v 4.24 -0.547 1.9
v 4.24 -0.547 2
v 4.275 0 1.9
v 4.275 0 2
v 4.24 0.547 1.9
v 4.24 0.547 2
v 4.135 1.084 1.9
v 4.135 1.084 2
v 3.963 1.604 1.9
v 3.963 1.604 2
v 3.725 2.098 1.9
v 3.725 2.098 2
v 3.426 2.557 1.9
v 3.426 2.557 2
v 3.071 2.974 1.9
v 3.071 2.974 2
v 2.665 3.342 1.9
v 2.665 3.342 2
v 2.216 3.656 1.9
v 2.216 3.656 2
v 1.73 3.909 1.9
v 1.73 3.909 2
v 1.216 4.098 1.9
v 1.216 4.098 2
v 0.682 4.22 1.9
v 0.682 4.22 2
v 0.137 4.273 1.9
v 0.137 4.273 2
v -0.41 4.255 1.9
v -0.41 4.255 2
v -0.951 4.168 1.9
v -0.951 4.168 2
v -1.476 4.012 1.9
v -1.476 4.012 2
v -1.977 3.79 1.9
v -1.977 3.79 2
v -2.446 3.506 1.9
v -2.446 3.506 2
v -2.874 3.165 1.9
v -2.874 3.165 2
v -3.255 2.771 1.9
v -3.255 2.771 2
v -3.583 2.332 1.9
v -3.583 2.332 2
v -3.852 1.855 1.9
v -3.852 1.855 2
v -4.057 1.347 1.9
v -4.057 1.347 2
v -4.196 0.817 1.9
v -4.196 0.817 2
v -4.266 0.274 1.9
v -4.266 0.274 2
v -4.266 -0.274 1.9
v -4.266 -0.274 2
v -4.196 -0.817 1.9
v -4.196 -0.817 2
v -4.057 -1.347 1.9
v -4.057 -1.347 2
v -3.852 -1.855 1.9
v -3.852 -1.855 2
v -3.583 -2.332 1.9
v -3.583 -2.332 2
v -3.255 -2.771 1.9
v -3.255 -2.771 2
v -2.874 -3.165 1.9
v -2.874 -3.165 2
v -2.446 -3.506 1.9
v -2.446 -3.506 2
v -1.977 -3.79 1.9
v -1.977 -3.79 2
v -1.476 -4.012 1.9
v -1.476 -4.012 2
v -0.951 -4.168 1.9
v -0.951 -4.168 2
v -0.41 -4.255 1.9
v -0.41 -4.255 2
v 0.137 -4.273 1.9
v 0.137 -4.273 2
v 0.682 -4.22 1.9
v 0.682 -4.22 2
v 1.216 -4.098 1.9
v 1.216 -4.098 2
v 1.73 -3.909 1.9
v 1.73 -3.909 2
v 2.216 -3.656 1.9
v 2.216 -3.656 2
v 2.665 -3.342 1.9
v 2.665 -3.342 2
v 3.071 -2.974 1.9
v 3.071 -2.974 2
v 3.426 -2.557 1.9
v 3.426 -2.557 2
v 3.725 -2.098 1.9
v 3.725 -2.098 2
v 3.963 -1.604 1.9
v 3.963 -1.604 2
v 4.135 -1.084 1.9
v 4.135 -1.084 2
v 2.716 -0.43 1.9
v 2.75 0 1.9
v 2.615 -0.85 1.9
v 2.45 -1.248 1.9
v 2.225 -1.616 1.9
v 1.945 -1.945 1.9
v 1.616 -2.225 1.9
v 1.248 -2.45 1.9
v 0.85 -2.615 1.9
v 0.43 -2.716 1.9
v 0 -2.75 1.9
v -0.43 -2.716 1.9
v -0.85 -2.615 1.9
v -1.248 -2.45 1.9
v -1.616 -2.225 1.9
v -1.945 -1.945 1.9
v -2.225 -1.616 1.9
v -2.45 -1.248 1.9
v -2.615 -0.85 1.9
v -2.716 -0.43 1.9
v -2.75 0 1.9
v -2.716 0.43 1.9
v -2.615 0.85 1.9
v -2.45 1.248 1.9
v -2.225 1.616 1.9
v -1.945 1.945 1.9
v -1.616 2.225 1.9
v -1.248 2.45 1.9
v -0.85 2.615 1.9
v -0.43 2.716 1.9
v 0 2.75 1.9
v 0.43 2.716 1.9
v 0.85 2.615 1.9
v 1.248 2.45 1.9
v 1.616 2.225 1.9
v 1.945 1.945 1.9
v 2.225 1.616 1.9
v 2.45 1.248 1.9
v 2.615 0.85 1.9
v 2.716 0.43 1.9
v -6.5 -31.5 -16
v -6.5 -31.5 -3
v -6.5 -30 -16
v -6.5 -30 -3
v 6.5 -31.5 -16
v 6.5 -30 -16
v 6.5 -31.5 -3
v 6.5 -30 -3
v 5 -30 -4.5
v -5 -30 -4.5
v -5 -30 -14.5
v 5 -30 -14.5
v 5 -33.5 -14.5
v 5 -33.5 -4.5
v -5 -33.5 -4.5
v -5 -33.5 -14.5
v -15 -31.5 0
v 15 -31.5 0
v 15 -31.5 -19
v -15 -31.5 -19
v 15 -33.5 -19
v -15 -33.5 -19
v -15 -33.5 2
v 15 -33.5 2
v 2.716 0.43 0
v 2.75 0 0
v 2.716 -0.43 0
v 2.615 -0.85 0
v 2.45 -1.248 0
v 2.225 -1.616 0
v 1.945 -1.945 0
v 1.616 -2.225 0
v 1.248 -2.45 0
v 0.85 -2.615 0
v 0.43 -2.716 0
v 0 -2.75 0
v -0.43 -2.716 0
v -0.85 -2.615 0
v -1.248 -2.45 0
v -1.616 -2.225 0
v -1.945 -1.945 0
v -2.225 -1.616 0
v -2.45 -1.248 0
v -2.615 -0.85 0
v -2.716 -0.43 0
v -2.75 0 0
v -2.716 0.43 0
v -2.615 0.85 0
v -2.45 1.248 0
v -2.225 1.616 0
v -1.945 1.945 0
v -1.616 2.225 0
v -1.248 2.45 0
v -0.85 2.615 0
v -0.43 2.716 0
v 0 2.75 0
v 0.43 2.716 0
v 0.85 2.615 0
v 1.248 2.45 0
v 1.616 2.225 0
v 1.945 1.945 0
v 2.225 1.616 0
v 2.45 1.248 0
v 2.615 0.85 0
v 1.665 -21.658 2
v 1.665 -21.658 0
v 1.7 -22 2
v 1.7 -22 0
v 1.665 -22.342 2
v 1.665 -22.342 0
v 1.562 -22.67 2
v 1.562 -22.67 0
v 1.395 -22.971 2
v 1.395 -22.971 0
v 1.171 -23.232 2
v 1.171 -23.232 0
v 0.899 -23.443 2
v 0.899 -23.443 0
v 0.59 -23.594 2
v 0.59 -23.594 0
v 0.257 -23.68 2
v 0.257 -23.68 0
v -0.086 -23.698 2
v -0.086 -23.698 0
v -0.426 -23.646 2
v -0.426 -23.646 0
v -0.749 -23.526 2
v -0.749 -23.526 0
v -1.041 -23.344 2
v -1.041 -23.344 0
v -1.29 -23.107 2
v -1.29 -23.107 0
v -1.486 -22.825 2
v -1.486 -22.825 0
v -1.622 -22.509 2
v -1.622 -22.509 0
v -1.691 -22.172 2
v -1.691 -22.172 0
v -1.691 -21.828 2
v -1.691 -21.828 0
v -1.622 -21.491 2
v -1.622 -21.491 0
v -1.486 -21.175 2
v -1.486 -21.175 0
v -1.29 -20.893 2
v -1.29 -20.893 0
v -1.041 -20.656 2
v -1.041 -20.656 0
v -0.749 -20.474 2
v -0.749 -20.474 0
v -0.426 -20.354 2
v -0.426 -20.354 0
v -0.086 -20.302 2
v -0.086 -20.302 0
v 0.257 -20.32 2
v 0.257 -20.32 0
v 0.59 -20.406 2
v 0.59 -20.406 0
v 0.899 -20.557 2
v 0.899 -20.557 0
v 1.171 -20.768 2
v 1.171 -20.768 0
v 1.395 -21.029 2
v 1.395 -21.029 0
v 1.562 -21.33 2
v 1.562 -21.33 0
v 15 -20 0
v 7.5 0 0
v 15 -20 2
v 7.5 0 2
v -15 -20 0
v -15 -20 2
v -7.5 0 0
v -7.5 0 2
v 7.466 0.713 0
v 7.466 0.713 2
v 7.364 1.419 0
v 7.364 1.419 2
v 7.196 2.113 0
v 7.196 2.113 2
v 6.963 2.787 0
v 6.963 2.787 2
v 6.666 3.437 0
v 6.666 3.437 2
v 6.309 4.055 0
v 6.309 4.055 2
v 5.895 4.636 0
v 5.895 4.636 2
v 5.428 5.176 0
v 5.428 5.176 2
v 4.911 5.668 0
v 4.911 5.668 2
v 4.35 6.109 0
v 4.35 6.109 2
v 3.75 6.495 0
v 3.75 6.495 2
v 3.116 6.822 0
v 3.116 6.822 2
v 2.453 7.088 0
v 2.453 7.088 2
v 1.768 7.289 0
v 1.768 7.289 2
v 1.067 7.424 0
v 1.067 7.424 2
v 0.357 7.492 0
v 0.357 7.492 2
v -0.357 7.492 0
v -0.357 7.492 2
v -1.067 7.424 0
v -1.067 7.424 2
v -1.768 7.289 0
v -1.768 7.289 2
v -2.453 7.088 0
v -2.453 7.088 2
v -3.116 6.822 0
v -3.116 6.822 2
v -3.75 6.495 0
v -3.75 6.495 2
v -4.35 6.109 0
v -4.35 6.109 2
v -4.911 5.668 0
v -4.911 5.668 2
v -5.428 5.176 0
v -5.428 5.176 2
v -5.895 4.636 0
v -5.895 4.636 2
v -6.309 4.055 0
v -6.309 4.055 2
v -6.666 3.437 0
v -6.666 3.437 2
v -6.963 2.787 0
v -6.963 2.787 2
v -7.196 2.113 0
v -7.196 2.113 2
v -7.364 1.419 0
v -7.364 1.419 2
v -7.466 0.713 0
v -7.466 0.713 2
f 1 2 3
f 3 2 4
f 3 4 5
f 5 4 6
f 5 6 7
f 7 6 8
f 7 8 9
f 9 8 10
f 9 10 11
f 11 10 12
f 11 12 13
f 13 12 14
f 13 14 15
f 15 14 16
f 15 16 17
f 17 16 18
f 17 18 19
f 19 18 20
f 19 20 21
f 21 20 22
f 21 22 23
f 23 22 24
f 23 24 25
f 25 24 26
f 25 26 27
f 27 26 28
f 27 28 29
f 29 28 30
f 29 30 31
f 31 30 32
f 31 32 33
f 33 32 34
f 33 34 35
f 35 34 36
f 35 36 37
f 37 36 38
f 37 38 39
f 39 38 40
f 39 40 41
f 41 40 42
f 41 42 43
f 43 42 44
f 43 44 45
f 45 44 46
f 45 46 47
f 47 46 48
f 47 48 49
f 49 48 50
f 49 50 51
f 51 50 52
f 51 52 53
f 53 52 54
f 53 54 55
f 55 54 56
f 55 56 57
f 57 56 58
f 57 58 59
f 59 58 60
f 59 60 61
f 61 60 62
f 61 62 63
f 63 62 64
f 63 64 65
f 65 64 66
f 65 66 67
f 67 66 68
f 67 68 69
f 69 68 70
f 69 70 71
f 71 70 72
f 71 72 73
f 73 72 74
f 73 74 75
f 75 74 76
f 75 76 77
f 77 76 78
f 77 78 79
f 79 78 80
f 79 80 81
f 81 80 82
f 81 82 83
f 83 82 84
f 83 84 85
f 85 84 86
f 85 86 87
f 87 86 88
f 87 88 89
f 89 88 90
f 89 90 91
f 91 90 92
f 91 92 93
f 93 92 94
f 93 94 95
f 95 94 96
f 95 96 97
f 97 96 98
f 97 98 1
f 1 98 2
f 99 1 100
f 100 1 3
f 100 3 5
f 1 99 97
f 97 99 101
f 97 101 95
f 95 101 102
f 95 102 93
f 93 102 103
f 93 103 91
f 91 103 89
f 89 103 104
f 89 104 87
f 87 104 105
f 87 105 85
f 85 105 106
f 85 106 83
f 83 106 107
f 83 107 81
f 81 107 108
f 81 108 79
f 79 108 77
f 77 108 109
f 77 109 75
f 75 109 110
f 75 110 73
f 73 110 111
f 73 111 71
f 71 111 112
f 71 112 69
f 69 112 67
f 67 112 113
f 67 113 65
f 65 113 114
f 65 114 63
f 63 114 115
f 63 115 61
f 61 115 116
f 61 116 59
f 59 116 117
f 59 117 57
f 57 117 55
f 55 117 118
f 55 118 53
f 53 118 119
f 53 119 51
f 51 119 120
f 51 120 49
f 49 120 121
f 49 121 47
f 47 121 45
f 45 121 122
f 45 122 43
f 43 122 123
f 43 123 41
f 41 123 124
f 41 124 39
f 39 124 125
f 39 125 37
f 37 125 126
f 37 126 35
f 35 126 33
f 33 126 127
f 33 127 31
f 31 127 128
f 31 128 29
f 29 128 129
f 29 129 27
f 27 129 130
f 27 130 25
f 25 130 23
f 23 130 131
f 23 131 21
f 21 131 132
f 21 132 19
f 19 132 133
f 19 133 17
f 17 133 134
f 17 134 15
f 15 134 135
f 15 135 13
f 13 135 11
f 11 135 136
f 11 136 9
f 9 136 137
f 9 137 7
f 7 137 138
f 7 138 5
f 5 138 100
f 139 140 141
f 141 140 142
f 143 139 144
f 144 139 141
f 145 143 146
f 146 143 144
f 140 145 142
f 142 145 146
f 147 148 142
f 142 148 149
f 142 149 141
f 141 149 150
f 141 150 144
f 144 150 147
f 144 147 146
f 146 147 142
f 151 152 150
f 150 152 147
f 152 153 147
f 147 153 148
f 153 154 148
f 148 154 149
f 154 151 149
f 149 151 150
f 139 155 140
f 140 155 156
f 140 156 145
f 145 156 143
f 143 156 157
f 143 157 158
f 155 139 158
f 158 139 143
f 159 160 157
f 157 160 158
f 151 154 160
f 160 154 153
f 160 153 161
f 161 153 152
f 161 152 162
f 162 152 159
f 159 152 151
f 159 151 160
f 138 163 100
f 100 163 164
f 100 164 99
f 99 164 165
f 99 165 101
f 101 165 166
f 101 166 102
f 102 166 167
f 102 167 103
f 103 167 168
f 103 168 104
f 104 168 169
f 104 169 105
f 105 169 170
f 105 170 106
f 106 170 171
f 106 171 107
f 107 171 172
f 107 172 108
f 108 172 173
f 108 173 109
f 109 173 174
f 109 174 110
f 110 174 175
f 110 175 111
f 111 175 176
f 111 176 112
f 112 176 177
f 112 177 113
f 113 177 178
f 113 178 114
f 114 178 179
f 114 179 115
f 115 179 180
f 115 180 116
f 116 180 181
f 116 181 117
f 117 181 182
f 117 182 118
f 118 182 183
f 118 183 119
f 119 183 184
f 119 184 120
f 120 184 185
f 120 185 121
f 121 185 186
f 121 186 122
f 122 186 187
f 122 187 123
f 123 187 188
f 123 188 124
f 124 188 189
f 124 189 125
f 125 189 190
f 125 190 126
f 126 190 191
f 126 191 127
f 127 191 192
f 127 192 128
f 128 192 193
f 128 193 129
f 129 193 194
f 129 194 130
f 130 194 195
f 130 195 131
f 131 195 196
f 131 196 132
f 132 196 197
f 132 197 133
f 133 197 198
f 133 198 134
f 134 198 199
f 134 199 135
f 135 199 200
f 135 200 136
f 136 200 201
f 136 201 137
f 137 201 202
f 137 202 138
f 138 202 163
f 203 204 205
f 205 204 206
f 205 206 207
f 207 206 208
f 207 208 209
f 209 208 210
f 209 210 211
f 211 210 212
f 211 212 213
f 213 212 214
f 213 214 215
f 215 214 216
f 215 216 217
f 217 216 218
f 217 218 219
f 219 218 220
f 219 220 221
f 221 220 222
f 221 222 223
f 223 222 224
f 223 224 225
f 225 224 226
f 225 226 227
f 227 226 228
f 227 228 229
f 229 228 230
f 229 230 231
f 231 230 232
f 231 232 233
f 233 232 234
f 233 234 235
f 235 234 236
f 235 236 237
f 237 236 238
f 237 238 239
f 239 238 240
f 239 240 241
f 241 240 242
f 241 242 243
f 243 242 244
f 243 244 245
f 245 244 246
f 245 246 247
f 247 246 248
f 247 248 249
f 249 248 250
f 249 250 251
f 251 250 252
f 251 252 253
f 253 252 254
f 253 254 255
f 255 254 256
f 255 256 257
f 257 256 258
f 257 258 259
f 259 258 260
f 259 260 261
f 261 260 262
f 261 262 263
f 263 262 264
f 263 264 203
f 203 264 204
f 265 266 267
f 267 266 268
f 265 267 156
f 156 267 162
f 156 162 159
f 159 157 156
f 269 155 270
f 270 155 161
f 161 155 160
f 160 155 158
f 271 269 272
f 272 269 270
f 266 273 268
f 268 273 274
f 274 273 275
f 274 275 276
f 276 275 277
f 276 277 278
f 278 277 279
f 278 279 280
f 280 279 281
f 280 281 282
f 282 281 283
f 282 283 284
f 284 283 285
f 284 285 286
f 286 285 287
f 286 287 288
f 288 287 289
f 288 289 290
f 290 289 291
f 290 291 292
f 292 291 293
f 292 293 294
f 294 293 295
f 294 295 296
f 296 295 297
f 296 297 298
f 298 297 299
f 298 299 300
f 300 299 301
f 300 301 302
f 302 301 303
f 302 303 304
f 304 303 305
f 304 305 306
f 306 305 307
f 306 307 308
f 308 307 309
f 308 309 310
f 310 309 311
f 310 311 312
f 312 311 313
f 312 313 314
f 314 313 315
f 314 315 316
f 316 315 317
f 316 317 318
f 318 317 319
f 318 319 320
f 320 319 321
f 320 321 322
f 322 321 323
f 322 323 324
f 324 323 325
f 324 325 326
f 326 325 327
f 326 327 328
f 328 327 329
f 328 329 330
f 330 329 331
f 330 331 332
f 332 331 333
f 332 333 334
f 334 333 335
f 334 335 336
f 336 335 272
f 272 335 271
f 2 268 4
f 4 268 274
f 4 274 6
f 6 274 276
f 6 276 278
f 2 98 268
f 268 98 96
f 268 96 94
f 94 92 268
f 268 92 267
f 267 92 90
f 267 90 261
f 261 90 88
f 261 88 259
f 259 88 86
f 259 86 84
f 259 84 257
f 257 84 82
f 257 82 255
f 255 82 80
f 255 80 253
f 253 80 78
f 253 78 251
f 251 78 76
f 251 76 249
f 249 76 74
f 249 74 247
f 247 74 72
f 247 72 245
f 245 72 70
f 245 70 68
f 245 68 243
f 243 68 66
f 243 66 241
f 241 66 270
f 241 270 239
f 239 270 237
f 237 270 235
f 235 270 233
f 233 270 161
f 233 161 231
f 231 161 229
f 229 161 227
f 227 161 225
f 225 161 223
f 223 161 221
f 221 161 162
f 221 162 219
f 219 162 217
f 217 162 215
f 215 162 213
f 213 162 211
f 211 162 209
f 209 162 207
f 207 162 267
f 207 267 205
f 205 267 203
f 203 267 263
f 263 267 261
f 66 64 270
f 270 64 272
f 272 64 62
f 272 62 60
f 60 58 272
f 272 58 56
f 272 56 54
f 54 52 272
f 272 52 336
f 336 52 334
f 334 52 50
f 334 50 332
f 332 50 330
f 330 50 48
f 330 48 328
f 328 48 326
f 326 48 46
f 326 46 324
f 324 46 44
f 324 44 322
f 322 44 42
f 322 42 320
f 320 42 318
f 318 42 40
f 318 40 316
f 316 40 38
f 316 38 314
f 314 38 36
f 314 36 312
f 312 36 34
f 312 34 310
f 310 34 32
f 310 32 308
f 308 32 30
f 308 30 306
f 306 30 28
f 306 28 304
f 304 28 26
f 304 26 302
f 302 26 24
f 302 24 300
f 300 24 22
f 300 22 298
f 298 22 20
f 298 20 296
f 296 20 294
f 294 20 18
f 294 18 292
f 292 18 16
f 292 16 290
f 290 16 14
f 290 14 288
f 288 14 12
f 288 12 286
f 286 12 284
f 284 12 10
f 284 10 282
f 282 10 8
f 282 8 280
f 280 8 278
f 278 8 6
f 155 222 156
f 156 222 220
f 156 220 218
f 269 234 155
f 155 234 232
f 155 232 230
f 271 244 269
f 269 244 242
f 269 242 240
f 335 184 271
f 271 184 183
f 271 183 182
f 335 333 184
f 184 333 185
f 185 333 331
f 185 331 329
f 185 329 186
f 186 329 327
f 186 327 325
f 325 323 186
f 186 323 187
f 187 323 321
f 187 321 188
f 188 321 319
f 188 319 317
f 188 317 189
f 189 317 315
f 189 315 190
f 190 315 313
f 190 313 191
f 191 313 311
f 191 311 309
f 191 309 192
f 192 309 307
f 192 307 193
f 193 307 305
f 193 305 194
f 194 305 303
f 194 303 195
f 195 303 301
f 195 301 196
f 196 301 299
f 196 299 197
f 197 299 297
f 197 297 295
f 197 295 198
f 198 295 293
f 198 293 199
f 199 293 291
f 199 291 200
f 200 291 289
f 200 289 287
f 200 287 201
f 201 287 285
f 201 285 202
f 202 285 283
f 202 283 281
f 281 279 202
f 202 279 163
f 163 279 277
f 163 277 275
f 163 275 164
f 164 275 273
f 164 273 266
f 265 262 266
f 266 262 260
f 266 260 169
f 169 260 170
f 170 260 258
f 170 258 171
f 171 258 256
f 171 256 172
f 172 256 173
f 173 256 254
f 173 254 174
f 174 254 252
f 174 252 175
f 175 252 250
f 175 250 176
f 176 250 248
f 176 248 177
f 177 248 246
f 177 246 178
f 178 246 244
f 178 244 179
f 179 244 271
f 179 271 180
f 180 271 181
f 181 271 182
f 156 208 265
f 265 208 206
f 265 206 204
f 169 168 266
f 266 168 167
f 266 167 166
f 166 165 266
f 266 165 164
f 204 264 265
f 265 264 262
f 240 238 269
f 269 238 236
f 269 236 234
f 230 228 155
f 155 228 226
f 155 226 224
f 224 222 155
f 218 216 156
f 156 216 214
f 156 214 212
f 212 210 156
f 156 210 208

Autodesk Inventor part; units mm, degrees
ref_plane "YZ Plane" through (0, 0, 0) normal (1, 0, 0) x (0, 1, 0)
ref_plane "XZ Plane" through (0, 0, 0) normal (0, 1, 0) x (-1, 0, 0)
ref_plane "XY Plane" through (0, 0, 0) normal (0, 0, 1) x (1, 0, 0)
sketch "Sketch2" plane through (-15, -30, 0) normal (0, 0, 1) x (1, 0, 0)
  arc A0 (22.5, 30) -> (7.5, 30) centre (15, 30) ccw
  line L0 (7.5, 30) -> (0, 10)
  line L1 (30, 10) -> (22.5, 30)
  line L2 (30, 0) -> (30, 10)
  line L3 (0, 10) -> (0, 0)
  line L4 (0, 0) -> (30, 0)
  circle A1 centre (15, 30) radius 2.75
  circle A2 centre (15, 8) radius 1.7
  line L5 (15, 30) -> (15, 8) construction
  line L6 (7.5, 30) -> (15, 30) construction
  dimension "d15" = 30
  dimension "d16" = 10
  dimension "d17" = 15
  dimension "d18" = 5.5
  dimension "d19" = 30
  dimension "d20" = 8
  dimension "d21" = 15
  dimension "d22" = 3.4
extrude "Extrusion1" add sketch "Sketch2" along normal blind 2
sketch "Sketch3" plane through (-15, -30, 0) normal (0, -1, 0) x (1, 0, 0)
  line L0 (0, 0) -> (30, 0) projected
  line L1 (30, 0) -> (30, 2) projected
  line L2 (0, 2) -> (30, 2) projected
  line L3 (0, 0) -> (0, 2) projected
  point P0 (15, 0)
extrude "Extrusion2" add sketch "Sketch3" along normal blind 3.5
sketch "Sketch4" plane through (-15, -30, 0) normal (0, 0, -1) x (-1, 0, 0)
  line L0 (-30, 10) -> (-30, -3.5) projected
  line L1 (0, 10) -> (0, -3.5) projected
  line L2 (-30, -3.5) -> (0, -3.5)
  line L3 (0, -3.5) -> (0, -1.5)
  line L4 (0, -1.5) -> (-30, -1.5)
  line L5 (-30, -1.5) -> (-30, -3.5)
  point P0 (-15, 30)
  dimension "d27" = 2
extrude "Extrusion3" add sketch "Sketch4" along normal blind 19
sketch "Sketch5" plane through (-15, -33.5, 0) normal (0, -1, 0) x (1, 0, 0)
  line L0 (10, -4.5) -> (20, -4.5)
  line L1 (20, -4.5) -> (20, -14.5)
  line L2 (20, -14.5) -> (10, -14.5)
  line L3 (10, -14.5) -> (10, -4.5)
  line L4 (10, -4.5) -> (20, -14.5) construction
  line L5 (20, -4.5) -> (10, -14.5) construction
  line L6 (15, 0) -> (15, -9.5) construction
  line L7 (30, 0) -> (0, 0) projected
  line L8 (30, -19) -> (0, -19) projected
  dimension "d31" = 10
  dimension "d32" = 9.5
  dimension "d33" = 10
extrude "Extrusion4" cut sketch "Sketch5" against normal up to next
sketch "Sketch6" plane through (-15, -31.5, 0) normal (0, 1, 0) x (1, 0, 0)
  line L0 (20, 4.5) -> (10, 4.5) projected
  line L1 (20, 14.5) -> (20, 4.5) projected
  line L2 (10, 4.5) -> (10, 14.5) projected
  line L3 (10, 14.5) -> (20, 14.5) projected
  line L4 (21.5, 3) -> (8.5, 3)
  line L5 (8.5, 3) -> (8.5, 16)
  line L6 (8.5, 16) -> (21.5, 16)
  line L7 (21.5, 16) -> (21.5, 3)
  point P0 (15, 0)
  dimension "d36" = 1.5
extrude "Extrusion5" add sketch "Sketch6" along normal blind 1.5
sketch "Sketch7" plane through (-15, -30, 2) normal (0, 0, 1) x (1, 0, 0)
  circle A0 centre (15, 30) radius 4.275
  dimension "d39" = 8.55
extrude "Extrusion6" cut sketch "Sketch7" against normal blind 0.1
properties part number "LampeSolaire2_LedAmoviblePart_Cover 3D printer"
